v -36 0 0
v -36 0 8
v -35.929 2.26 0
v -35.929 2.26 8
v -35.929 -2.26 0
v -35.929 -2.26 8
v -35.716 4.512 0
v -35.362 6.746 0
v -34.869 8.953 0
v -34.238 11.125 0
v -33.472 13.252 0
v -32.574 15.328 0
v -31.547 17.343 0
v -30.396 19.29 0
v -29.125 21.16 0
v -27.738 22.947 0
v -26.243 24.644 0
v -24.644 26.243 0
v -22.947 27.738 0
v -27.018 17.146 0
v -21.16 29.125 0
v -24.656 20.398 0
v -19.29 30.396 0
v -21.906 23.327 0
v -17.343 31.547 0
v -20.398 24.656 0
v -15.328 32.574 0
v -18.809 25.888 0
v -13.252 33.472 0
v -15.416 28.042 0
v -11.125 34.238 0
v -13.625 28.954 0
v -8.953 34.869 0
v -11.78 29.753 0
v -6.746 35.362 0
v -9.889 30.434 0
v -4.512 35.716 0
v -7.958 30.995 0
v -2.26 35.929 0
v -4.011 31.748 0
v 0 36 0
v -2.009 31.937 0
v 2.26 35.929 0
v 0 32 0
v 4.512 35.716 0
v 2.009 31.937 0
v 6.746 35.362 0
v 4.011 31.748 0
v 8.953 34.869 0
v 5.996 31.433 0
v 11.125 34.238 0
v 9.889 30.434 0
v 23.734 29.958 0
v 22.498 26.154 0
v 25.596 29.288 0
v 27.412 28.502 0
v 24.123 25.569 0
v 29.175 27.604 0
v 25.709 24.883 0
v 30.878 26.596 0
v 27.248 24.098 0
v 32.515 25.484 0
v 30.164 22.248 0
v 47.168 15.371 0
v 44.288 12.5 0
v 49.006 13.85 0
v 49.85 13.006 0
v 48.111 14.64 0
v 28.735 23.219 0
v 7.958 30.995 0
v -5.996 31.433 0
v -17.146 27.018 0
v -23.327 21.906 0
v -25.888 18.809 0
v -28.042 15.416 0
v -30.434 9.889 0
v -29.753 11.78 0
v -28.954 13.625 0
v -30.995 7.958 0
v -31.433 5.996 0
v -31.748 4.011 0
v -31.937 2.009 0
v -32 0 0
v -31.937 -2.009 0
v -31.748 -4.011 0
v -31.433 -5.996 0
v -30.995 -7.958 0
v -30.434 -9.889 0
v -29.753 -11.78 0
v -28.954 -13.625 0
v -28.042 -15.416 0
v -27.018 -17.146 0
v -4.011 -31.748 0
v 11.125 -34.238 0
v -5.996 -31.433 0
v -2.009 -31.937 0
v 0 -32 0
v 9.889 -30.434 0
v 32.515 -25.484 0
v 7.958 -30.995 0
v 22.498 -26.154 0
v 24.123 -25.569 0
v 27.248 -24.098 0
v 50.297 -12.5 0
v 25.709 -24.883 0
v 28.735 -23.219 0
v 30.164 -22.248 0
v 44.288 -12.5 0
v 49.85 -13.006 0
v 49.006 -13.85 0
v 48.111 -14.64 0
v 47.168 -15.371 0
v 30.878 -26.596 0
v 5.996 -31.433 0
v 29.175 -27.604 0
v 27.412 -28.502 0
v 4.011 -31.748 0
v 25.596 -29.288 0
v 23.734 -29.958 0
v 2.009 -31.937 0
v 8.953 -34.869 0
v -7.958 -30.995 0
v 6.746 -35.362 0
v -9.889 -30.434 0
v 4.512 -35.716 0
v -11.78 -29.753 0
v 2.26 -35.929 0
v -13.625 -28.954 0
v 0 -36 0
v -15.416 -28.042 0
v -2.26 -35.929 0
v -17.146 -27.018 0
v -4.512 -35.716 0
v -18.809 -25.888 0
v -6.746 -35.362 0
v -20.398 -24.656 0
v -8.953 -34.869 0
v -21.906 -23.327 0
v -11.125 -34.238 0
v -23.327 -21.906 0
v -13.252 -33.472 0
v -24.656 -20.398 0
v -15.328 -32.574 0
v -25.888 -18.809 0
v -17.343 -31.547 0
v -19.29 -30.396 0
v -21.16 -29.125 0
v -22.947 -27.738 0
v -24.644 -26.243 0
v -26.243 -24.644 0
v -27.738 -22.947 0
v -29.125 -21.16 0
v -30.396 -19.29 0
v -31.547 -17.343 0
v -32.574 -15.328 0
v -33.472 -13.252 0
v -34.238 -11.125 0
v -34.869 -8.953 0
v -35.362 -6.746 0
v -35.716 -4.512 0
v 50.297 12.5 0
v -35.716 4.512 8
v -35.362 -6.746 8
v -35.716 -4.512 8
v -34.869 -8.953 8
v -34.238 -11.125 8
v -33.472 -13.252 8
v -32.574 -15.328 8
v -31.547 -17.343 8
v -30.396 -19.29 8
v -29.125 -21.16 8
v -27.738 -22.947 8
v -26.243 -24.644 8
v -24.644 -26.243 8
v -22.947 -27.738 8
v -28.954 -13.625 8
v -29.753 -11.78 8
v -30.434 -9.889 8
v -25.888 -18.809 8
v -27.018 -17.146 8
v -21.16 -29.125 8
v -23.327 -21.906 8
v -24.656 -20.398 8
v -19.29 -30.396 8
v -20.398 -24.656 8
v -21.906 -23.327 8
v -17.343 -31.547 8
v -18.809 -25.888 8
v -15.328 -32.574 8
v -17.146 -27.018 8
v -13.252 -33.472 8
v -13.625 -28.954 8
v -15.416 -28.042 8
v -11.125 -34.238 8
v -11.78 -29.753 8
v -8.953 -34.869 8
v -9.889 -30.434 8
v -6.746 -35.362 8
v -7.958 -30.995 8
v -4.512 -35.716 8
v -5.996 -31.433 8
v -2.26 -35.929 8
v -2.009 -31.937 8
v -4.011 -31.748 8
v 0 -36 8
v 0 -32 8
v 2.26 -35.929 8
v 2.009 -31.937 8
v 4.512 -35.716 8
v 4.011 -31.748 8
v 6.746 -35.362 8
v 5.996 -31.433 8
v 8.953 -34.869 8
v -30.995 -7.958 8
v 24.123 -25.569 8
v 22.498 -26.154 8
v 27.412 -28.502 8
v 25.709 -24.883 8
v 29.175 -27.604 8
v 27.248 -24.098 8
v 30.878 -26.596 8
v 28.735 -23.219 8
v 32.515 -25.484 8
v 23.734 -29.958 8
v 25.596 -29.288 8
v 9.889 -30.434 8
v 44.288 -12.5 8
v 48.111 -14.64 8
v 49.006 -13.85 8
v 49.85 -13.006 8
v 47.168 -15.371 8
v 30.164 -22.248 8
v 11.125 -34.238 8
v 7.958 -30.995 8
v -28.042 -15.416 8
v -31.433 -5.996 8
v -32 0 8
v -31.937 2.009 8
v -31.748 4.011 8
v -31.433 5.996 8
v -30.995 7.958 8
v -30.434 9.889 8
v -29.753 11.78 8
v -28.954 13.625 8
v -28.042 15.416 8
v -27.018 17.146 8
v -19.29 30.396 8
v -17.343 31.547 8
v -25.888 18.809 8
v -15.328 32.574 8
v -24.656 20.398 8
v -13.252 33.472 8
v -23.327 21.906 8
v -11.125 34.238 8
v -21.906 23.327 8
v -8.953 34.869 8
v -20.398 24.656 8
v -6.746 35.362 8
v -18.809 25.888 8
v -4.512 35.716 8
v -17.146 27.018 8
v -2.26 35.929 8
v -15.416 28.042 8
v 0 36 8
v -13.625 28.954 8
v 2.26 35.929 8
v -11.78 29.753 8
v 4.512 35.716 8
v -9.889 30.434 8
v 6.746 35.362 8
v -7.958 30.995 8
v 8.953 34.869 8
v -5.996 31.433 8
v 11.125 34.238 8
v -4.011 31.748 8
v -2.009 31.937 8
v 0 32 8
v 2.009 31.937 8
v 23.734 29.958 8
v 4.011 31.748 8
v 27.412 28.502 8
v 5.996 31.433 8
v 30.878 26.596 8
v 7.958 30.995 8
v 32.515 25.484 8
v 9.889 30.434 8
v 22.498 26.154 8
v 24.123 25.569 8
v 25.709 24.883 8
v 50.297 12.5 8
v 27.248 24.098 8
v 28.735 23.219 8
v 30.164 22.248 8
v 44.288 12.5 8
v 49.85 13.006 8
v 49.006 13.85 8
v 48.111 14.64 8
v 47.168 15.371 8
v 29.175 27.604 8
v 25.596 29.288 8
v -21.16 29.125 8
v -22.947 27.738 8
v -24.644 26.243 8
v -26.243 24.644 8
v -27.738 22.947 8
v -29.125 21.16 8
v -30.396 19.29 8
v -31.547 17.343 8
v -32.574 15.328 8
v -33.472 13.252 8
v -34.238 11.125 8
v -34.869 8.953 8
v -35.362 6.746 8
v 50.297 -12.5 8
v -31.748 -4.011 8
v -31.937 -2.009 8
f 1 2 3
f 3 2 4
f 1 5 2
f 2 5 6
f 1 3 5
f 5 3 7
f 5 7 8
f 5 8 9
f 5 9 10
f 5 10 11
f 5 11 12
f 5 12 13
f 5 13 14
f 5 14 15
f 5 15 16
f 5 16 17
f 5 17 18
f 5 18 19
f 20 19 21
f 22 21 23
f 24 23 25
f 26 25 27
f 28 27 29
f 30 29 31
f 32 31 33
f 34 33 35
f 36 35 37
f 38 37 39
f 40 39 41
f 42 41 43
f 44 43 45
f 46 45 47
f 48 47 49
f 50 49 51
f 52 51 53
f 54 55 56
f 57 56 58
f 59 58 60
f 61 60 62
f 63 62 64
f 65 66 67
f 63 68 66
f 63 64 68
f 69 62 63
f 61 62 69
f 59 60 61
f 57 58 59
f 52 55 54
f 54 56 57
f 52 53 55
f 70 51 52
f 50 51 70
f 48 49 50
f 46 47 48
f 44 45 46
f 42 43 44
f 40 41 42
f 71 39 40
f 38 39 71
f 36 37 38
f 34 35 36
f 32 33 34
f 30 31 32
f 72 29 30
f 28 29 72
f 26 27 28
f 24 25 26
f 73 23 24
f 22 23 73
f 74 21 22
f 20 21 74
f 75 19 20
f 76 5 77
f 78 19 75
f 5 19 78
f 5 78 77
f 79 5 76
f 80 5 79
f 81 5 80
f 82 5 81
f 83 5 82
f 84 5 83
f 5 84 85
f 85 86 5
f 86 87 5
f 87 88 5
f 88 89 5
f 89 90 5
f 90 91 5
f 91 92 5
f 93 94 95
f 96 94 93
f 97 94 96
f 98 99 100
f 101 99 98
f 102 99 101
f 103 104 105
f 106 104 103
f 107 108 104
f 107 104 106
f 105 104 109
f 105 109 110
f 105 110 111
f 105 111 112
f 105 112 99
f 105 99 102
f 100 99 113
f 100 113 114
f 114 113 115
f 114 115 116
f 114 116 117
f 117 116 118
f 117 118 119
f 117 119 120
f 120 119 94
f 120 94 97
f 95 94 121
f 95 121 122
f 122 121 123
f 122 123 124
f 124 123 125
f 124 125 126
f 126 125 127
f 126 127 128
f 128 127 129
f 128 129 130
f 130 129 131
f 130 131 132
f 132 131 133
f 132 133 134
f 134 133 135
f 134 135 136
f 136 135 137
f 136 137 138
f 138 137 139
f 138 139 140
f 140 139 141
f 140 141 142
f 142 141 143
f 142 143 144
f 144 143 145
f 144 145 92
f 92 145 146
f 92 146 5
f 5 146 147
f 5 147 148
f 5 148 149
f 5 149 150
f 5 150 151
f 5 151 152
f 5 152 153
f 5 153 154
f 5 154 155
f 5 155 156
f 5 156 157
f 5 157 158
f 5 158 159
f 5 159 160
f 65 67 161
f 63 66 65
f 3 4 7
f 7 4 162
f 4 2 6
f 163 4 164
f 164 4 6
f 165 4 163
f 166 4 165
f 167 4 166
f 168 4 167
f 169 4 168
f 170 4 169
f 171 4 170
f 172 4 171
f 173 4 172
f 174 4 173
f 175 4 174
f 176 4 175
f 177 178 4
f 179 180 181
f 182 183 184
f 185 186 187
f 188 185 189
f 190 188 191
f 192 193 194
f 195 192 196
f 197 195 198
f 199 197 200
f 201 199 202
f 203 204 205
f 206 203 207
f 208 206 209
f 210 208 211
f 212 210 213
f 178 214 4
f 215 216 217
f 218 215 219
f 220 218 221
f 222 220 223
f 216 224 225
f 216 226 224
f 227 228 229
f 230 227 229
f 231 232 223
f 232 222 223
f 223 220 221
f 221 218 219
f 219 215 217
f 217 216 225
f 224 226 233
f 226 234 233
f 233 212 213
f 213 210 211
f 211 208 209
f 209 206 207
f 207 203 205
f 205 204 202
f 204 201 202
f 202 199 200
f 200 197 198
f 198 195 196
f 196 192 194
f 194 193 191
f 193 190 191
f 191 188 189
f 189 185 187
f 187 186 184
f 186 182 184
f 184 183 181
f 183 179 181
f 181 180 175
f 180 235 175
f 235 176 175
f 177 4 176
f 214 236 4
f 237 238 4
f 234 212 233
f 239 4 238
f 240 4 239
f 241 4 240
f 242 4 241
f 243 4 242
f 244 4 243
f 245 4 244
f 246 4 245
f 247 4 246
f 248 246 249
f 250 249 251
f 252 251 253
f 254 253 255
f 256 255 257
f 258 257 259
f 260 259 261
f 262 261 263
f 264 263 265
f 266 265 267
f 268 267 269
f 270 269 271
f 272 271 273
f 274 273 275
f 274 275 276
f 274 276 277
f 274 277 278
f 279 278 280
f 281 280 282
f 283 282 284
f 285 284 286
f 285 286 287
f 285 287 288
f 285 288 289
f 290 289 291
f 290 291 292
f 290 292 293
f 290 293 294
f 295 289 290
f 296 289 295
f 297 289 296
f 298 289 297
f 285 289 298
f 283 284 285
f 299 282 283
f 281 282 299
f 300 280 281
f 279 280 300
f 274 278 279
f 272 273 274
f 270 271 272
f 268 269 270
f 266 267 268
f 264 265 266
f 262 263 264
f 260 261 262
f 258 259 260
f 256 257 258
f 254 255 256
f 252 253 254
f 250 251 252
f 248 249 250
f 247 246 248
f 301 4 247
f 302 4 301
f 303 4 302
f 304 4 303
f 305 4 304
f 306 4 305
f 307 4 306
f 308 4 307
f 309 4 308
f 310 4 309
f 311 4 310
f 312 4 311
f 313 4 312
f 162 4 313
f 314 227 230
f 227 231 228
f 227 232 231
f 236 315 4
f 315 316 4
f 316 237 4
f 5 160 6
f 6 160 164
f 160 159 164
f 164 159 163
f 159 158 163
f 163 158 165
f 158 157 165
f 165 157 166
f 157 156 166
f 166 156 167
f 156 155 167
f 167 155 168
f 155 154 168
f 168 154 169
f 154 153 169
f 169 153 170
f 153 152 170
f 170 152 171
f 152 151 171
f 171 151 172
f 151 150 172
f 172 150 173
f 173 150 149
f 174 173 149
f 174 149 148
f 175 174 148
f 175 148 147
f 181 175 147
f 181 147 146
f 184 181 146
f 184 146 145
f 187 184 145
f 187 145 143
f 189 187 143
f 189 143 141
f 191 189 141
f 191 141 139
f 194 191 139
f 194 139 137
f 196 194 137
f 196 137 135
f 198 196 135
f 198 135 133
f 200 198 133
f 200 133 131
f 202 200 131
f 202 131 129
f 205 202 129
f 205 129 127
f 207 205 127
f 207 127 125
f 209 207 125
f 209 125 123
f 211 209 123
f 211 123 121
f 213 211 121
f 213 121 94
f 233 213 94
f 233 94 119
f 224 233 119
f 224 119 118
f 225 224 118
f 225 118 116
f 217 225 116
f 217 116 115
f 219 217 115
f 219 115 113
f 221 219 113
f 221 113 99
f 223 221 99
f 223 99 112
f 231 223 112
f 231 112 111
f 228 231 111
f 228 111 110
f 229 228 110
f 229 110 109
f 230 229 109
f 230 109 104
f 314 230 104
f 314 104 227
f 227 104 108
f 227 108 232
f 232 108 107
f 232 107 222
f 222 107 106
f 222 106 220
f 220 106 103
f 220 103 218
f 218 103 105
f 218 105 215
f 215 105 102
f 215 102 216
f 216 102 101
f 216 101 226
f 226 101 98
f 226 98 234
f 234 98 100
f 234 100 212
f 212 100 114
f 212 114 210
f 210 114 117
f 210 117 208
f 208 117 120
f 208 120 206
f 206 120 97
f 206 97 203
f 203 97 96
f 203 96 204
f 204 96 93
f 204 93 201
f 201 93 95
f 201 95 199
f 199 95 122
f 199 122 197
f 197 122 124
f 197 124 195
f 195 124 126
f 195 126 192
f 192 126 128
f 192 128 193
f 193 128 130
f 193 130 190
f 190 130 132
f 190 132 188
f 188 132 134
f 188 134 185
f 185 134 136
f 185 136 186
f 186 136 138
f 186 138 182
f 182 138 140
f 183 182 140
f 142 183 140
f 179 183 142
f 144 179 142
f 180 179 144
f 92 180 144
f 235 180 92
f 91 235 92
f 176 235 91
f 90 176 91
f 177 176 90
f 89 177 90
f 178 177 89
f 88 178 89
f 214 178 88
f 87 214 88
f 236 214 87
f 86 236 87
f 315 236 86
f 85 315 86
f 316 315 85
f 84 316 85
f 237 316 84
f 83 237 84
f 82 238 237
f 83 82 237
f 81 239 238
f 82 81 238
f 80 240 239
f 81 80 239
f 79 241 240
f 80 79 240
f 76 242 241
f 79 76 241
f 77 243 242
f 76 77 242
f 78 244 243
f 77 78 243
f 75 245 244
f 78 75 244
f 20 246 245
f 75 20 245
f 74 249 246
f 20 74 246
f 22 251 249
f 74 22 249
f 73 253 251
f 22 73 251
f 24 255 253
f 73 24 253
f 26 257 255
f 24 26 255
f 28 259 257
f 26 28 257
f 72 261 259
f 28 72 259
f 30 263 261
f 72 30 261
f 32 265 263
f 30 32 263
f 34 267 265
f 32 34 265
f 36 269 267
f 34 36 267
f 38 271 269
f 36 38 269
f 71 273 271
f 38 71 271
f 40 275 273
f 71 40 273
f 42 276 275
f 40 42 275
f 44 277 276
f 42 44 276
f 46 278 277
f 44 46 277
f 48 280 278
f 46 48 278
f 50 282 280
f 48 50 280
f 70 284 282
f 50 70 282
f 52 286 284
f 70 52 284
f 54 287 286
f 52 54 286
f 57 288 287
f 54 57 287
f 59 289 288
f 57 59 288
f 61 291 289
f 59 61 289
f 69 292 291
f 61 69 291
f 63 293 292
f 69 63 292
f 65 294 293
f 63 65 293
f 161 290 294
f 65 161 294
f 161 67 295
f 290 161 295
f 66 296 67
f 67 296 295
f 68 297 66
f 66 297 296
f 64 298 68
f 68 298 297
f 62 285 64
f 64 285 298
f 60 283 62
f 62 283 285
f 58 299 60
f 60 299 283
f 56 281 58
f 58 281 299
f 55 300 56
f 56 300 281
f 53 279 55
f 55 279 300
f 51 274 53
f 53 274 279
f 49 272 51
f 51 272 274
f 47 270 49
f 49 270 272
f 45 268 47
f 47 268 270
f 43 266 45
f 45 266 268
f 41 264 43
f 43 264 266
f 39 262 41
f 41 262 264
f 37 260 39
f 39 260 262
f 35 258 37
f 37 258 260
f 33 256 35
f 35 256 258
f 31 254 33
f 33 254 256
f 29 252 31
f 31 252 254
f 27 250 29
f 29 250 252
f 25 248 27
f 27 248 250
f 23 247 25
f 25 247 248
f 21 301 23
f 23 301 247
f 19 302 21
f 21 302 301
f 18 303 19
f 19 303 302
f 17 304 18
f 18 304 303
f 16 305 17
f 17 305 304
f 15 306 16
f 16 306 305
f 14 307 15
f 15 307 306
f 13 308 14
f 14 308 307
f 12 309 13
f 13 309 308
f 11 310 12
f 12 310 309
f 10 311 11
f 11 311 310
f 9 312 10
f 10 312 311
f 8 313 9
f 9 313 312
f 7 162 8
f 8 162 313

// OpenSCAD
/**
 * Trousers Guard - Salva pantalón
 * 
 * Created by DViejo
 * 
 */


rad1 = 72/2;
rad2 = 38/2;
rad3 = 63/2;
width = 4;
height = 8;
cube_edge = 25;

difference()
{
	hull()
	{
		cylinder(r = rad1, h = height, $fn=100);
		translate([rad1, 0, 0])
			cylinder(r = rad2, h = height, $fn=100);
		translate([rad1/2-width, 0, 0])
			cylinder(r = rad3, h = height, $fn=100);
	}

	hull()
	{
		translate([0,0,-height/2])
			cylinder(r = rad1-width, h = height*2, $fn=100);
		translate([rad1, 0, -height/2])
			#cylinder(r = rad2-width, h = height*2, $fn=100);
		translate([rad1/2-width, 0, 0])
			#cylinder(r = rad3-width, h = height, $fn=100);
	}
	translate([rad1+rad2, 0, height/2])
//		rotate([0,0,45])
			#cube([cube_edge, cube_edge, height*2], center = true);
}
